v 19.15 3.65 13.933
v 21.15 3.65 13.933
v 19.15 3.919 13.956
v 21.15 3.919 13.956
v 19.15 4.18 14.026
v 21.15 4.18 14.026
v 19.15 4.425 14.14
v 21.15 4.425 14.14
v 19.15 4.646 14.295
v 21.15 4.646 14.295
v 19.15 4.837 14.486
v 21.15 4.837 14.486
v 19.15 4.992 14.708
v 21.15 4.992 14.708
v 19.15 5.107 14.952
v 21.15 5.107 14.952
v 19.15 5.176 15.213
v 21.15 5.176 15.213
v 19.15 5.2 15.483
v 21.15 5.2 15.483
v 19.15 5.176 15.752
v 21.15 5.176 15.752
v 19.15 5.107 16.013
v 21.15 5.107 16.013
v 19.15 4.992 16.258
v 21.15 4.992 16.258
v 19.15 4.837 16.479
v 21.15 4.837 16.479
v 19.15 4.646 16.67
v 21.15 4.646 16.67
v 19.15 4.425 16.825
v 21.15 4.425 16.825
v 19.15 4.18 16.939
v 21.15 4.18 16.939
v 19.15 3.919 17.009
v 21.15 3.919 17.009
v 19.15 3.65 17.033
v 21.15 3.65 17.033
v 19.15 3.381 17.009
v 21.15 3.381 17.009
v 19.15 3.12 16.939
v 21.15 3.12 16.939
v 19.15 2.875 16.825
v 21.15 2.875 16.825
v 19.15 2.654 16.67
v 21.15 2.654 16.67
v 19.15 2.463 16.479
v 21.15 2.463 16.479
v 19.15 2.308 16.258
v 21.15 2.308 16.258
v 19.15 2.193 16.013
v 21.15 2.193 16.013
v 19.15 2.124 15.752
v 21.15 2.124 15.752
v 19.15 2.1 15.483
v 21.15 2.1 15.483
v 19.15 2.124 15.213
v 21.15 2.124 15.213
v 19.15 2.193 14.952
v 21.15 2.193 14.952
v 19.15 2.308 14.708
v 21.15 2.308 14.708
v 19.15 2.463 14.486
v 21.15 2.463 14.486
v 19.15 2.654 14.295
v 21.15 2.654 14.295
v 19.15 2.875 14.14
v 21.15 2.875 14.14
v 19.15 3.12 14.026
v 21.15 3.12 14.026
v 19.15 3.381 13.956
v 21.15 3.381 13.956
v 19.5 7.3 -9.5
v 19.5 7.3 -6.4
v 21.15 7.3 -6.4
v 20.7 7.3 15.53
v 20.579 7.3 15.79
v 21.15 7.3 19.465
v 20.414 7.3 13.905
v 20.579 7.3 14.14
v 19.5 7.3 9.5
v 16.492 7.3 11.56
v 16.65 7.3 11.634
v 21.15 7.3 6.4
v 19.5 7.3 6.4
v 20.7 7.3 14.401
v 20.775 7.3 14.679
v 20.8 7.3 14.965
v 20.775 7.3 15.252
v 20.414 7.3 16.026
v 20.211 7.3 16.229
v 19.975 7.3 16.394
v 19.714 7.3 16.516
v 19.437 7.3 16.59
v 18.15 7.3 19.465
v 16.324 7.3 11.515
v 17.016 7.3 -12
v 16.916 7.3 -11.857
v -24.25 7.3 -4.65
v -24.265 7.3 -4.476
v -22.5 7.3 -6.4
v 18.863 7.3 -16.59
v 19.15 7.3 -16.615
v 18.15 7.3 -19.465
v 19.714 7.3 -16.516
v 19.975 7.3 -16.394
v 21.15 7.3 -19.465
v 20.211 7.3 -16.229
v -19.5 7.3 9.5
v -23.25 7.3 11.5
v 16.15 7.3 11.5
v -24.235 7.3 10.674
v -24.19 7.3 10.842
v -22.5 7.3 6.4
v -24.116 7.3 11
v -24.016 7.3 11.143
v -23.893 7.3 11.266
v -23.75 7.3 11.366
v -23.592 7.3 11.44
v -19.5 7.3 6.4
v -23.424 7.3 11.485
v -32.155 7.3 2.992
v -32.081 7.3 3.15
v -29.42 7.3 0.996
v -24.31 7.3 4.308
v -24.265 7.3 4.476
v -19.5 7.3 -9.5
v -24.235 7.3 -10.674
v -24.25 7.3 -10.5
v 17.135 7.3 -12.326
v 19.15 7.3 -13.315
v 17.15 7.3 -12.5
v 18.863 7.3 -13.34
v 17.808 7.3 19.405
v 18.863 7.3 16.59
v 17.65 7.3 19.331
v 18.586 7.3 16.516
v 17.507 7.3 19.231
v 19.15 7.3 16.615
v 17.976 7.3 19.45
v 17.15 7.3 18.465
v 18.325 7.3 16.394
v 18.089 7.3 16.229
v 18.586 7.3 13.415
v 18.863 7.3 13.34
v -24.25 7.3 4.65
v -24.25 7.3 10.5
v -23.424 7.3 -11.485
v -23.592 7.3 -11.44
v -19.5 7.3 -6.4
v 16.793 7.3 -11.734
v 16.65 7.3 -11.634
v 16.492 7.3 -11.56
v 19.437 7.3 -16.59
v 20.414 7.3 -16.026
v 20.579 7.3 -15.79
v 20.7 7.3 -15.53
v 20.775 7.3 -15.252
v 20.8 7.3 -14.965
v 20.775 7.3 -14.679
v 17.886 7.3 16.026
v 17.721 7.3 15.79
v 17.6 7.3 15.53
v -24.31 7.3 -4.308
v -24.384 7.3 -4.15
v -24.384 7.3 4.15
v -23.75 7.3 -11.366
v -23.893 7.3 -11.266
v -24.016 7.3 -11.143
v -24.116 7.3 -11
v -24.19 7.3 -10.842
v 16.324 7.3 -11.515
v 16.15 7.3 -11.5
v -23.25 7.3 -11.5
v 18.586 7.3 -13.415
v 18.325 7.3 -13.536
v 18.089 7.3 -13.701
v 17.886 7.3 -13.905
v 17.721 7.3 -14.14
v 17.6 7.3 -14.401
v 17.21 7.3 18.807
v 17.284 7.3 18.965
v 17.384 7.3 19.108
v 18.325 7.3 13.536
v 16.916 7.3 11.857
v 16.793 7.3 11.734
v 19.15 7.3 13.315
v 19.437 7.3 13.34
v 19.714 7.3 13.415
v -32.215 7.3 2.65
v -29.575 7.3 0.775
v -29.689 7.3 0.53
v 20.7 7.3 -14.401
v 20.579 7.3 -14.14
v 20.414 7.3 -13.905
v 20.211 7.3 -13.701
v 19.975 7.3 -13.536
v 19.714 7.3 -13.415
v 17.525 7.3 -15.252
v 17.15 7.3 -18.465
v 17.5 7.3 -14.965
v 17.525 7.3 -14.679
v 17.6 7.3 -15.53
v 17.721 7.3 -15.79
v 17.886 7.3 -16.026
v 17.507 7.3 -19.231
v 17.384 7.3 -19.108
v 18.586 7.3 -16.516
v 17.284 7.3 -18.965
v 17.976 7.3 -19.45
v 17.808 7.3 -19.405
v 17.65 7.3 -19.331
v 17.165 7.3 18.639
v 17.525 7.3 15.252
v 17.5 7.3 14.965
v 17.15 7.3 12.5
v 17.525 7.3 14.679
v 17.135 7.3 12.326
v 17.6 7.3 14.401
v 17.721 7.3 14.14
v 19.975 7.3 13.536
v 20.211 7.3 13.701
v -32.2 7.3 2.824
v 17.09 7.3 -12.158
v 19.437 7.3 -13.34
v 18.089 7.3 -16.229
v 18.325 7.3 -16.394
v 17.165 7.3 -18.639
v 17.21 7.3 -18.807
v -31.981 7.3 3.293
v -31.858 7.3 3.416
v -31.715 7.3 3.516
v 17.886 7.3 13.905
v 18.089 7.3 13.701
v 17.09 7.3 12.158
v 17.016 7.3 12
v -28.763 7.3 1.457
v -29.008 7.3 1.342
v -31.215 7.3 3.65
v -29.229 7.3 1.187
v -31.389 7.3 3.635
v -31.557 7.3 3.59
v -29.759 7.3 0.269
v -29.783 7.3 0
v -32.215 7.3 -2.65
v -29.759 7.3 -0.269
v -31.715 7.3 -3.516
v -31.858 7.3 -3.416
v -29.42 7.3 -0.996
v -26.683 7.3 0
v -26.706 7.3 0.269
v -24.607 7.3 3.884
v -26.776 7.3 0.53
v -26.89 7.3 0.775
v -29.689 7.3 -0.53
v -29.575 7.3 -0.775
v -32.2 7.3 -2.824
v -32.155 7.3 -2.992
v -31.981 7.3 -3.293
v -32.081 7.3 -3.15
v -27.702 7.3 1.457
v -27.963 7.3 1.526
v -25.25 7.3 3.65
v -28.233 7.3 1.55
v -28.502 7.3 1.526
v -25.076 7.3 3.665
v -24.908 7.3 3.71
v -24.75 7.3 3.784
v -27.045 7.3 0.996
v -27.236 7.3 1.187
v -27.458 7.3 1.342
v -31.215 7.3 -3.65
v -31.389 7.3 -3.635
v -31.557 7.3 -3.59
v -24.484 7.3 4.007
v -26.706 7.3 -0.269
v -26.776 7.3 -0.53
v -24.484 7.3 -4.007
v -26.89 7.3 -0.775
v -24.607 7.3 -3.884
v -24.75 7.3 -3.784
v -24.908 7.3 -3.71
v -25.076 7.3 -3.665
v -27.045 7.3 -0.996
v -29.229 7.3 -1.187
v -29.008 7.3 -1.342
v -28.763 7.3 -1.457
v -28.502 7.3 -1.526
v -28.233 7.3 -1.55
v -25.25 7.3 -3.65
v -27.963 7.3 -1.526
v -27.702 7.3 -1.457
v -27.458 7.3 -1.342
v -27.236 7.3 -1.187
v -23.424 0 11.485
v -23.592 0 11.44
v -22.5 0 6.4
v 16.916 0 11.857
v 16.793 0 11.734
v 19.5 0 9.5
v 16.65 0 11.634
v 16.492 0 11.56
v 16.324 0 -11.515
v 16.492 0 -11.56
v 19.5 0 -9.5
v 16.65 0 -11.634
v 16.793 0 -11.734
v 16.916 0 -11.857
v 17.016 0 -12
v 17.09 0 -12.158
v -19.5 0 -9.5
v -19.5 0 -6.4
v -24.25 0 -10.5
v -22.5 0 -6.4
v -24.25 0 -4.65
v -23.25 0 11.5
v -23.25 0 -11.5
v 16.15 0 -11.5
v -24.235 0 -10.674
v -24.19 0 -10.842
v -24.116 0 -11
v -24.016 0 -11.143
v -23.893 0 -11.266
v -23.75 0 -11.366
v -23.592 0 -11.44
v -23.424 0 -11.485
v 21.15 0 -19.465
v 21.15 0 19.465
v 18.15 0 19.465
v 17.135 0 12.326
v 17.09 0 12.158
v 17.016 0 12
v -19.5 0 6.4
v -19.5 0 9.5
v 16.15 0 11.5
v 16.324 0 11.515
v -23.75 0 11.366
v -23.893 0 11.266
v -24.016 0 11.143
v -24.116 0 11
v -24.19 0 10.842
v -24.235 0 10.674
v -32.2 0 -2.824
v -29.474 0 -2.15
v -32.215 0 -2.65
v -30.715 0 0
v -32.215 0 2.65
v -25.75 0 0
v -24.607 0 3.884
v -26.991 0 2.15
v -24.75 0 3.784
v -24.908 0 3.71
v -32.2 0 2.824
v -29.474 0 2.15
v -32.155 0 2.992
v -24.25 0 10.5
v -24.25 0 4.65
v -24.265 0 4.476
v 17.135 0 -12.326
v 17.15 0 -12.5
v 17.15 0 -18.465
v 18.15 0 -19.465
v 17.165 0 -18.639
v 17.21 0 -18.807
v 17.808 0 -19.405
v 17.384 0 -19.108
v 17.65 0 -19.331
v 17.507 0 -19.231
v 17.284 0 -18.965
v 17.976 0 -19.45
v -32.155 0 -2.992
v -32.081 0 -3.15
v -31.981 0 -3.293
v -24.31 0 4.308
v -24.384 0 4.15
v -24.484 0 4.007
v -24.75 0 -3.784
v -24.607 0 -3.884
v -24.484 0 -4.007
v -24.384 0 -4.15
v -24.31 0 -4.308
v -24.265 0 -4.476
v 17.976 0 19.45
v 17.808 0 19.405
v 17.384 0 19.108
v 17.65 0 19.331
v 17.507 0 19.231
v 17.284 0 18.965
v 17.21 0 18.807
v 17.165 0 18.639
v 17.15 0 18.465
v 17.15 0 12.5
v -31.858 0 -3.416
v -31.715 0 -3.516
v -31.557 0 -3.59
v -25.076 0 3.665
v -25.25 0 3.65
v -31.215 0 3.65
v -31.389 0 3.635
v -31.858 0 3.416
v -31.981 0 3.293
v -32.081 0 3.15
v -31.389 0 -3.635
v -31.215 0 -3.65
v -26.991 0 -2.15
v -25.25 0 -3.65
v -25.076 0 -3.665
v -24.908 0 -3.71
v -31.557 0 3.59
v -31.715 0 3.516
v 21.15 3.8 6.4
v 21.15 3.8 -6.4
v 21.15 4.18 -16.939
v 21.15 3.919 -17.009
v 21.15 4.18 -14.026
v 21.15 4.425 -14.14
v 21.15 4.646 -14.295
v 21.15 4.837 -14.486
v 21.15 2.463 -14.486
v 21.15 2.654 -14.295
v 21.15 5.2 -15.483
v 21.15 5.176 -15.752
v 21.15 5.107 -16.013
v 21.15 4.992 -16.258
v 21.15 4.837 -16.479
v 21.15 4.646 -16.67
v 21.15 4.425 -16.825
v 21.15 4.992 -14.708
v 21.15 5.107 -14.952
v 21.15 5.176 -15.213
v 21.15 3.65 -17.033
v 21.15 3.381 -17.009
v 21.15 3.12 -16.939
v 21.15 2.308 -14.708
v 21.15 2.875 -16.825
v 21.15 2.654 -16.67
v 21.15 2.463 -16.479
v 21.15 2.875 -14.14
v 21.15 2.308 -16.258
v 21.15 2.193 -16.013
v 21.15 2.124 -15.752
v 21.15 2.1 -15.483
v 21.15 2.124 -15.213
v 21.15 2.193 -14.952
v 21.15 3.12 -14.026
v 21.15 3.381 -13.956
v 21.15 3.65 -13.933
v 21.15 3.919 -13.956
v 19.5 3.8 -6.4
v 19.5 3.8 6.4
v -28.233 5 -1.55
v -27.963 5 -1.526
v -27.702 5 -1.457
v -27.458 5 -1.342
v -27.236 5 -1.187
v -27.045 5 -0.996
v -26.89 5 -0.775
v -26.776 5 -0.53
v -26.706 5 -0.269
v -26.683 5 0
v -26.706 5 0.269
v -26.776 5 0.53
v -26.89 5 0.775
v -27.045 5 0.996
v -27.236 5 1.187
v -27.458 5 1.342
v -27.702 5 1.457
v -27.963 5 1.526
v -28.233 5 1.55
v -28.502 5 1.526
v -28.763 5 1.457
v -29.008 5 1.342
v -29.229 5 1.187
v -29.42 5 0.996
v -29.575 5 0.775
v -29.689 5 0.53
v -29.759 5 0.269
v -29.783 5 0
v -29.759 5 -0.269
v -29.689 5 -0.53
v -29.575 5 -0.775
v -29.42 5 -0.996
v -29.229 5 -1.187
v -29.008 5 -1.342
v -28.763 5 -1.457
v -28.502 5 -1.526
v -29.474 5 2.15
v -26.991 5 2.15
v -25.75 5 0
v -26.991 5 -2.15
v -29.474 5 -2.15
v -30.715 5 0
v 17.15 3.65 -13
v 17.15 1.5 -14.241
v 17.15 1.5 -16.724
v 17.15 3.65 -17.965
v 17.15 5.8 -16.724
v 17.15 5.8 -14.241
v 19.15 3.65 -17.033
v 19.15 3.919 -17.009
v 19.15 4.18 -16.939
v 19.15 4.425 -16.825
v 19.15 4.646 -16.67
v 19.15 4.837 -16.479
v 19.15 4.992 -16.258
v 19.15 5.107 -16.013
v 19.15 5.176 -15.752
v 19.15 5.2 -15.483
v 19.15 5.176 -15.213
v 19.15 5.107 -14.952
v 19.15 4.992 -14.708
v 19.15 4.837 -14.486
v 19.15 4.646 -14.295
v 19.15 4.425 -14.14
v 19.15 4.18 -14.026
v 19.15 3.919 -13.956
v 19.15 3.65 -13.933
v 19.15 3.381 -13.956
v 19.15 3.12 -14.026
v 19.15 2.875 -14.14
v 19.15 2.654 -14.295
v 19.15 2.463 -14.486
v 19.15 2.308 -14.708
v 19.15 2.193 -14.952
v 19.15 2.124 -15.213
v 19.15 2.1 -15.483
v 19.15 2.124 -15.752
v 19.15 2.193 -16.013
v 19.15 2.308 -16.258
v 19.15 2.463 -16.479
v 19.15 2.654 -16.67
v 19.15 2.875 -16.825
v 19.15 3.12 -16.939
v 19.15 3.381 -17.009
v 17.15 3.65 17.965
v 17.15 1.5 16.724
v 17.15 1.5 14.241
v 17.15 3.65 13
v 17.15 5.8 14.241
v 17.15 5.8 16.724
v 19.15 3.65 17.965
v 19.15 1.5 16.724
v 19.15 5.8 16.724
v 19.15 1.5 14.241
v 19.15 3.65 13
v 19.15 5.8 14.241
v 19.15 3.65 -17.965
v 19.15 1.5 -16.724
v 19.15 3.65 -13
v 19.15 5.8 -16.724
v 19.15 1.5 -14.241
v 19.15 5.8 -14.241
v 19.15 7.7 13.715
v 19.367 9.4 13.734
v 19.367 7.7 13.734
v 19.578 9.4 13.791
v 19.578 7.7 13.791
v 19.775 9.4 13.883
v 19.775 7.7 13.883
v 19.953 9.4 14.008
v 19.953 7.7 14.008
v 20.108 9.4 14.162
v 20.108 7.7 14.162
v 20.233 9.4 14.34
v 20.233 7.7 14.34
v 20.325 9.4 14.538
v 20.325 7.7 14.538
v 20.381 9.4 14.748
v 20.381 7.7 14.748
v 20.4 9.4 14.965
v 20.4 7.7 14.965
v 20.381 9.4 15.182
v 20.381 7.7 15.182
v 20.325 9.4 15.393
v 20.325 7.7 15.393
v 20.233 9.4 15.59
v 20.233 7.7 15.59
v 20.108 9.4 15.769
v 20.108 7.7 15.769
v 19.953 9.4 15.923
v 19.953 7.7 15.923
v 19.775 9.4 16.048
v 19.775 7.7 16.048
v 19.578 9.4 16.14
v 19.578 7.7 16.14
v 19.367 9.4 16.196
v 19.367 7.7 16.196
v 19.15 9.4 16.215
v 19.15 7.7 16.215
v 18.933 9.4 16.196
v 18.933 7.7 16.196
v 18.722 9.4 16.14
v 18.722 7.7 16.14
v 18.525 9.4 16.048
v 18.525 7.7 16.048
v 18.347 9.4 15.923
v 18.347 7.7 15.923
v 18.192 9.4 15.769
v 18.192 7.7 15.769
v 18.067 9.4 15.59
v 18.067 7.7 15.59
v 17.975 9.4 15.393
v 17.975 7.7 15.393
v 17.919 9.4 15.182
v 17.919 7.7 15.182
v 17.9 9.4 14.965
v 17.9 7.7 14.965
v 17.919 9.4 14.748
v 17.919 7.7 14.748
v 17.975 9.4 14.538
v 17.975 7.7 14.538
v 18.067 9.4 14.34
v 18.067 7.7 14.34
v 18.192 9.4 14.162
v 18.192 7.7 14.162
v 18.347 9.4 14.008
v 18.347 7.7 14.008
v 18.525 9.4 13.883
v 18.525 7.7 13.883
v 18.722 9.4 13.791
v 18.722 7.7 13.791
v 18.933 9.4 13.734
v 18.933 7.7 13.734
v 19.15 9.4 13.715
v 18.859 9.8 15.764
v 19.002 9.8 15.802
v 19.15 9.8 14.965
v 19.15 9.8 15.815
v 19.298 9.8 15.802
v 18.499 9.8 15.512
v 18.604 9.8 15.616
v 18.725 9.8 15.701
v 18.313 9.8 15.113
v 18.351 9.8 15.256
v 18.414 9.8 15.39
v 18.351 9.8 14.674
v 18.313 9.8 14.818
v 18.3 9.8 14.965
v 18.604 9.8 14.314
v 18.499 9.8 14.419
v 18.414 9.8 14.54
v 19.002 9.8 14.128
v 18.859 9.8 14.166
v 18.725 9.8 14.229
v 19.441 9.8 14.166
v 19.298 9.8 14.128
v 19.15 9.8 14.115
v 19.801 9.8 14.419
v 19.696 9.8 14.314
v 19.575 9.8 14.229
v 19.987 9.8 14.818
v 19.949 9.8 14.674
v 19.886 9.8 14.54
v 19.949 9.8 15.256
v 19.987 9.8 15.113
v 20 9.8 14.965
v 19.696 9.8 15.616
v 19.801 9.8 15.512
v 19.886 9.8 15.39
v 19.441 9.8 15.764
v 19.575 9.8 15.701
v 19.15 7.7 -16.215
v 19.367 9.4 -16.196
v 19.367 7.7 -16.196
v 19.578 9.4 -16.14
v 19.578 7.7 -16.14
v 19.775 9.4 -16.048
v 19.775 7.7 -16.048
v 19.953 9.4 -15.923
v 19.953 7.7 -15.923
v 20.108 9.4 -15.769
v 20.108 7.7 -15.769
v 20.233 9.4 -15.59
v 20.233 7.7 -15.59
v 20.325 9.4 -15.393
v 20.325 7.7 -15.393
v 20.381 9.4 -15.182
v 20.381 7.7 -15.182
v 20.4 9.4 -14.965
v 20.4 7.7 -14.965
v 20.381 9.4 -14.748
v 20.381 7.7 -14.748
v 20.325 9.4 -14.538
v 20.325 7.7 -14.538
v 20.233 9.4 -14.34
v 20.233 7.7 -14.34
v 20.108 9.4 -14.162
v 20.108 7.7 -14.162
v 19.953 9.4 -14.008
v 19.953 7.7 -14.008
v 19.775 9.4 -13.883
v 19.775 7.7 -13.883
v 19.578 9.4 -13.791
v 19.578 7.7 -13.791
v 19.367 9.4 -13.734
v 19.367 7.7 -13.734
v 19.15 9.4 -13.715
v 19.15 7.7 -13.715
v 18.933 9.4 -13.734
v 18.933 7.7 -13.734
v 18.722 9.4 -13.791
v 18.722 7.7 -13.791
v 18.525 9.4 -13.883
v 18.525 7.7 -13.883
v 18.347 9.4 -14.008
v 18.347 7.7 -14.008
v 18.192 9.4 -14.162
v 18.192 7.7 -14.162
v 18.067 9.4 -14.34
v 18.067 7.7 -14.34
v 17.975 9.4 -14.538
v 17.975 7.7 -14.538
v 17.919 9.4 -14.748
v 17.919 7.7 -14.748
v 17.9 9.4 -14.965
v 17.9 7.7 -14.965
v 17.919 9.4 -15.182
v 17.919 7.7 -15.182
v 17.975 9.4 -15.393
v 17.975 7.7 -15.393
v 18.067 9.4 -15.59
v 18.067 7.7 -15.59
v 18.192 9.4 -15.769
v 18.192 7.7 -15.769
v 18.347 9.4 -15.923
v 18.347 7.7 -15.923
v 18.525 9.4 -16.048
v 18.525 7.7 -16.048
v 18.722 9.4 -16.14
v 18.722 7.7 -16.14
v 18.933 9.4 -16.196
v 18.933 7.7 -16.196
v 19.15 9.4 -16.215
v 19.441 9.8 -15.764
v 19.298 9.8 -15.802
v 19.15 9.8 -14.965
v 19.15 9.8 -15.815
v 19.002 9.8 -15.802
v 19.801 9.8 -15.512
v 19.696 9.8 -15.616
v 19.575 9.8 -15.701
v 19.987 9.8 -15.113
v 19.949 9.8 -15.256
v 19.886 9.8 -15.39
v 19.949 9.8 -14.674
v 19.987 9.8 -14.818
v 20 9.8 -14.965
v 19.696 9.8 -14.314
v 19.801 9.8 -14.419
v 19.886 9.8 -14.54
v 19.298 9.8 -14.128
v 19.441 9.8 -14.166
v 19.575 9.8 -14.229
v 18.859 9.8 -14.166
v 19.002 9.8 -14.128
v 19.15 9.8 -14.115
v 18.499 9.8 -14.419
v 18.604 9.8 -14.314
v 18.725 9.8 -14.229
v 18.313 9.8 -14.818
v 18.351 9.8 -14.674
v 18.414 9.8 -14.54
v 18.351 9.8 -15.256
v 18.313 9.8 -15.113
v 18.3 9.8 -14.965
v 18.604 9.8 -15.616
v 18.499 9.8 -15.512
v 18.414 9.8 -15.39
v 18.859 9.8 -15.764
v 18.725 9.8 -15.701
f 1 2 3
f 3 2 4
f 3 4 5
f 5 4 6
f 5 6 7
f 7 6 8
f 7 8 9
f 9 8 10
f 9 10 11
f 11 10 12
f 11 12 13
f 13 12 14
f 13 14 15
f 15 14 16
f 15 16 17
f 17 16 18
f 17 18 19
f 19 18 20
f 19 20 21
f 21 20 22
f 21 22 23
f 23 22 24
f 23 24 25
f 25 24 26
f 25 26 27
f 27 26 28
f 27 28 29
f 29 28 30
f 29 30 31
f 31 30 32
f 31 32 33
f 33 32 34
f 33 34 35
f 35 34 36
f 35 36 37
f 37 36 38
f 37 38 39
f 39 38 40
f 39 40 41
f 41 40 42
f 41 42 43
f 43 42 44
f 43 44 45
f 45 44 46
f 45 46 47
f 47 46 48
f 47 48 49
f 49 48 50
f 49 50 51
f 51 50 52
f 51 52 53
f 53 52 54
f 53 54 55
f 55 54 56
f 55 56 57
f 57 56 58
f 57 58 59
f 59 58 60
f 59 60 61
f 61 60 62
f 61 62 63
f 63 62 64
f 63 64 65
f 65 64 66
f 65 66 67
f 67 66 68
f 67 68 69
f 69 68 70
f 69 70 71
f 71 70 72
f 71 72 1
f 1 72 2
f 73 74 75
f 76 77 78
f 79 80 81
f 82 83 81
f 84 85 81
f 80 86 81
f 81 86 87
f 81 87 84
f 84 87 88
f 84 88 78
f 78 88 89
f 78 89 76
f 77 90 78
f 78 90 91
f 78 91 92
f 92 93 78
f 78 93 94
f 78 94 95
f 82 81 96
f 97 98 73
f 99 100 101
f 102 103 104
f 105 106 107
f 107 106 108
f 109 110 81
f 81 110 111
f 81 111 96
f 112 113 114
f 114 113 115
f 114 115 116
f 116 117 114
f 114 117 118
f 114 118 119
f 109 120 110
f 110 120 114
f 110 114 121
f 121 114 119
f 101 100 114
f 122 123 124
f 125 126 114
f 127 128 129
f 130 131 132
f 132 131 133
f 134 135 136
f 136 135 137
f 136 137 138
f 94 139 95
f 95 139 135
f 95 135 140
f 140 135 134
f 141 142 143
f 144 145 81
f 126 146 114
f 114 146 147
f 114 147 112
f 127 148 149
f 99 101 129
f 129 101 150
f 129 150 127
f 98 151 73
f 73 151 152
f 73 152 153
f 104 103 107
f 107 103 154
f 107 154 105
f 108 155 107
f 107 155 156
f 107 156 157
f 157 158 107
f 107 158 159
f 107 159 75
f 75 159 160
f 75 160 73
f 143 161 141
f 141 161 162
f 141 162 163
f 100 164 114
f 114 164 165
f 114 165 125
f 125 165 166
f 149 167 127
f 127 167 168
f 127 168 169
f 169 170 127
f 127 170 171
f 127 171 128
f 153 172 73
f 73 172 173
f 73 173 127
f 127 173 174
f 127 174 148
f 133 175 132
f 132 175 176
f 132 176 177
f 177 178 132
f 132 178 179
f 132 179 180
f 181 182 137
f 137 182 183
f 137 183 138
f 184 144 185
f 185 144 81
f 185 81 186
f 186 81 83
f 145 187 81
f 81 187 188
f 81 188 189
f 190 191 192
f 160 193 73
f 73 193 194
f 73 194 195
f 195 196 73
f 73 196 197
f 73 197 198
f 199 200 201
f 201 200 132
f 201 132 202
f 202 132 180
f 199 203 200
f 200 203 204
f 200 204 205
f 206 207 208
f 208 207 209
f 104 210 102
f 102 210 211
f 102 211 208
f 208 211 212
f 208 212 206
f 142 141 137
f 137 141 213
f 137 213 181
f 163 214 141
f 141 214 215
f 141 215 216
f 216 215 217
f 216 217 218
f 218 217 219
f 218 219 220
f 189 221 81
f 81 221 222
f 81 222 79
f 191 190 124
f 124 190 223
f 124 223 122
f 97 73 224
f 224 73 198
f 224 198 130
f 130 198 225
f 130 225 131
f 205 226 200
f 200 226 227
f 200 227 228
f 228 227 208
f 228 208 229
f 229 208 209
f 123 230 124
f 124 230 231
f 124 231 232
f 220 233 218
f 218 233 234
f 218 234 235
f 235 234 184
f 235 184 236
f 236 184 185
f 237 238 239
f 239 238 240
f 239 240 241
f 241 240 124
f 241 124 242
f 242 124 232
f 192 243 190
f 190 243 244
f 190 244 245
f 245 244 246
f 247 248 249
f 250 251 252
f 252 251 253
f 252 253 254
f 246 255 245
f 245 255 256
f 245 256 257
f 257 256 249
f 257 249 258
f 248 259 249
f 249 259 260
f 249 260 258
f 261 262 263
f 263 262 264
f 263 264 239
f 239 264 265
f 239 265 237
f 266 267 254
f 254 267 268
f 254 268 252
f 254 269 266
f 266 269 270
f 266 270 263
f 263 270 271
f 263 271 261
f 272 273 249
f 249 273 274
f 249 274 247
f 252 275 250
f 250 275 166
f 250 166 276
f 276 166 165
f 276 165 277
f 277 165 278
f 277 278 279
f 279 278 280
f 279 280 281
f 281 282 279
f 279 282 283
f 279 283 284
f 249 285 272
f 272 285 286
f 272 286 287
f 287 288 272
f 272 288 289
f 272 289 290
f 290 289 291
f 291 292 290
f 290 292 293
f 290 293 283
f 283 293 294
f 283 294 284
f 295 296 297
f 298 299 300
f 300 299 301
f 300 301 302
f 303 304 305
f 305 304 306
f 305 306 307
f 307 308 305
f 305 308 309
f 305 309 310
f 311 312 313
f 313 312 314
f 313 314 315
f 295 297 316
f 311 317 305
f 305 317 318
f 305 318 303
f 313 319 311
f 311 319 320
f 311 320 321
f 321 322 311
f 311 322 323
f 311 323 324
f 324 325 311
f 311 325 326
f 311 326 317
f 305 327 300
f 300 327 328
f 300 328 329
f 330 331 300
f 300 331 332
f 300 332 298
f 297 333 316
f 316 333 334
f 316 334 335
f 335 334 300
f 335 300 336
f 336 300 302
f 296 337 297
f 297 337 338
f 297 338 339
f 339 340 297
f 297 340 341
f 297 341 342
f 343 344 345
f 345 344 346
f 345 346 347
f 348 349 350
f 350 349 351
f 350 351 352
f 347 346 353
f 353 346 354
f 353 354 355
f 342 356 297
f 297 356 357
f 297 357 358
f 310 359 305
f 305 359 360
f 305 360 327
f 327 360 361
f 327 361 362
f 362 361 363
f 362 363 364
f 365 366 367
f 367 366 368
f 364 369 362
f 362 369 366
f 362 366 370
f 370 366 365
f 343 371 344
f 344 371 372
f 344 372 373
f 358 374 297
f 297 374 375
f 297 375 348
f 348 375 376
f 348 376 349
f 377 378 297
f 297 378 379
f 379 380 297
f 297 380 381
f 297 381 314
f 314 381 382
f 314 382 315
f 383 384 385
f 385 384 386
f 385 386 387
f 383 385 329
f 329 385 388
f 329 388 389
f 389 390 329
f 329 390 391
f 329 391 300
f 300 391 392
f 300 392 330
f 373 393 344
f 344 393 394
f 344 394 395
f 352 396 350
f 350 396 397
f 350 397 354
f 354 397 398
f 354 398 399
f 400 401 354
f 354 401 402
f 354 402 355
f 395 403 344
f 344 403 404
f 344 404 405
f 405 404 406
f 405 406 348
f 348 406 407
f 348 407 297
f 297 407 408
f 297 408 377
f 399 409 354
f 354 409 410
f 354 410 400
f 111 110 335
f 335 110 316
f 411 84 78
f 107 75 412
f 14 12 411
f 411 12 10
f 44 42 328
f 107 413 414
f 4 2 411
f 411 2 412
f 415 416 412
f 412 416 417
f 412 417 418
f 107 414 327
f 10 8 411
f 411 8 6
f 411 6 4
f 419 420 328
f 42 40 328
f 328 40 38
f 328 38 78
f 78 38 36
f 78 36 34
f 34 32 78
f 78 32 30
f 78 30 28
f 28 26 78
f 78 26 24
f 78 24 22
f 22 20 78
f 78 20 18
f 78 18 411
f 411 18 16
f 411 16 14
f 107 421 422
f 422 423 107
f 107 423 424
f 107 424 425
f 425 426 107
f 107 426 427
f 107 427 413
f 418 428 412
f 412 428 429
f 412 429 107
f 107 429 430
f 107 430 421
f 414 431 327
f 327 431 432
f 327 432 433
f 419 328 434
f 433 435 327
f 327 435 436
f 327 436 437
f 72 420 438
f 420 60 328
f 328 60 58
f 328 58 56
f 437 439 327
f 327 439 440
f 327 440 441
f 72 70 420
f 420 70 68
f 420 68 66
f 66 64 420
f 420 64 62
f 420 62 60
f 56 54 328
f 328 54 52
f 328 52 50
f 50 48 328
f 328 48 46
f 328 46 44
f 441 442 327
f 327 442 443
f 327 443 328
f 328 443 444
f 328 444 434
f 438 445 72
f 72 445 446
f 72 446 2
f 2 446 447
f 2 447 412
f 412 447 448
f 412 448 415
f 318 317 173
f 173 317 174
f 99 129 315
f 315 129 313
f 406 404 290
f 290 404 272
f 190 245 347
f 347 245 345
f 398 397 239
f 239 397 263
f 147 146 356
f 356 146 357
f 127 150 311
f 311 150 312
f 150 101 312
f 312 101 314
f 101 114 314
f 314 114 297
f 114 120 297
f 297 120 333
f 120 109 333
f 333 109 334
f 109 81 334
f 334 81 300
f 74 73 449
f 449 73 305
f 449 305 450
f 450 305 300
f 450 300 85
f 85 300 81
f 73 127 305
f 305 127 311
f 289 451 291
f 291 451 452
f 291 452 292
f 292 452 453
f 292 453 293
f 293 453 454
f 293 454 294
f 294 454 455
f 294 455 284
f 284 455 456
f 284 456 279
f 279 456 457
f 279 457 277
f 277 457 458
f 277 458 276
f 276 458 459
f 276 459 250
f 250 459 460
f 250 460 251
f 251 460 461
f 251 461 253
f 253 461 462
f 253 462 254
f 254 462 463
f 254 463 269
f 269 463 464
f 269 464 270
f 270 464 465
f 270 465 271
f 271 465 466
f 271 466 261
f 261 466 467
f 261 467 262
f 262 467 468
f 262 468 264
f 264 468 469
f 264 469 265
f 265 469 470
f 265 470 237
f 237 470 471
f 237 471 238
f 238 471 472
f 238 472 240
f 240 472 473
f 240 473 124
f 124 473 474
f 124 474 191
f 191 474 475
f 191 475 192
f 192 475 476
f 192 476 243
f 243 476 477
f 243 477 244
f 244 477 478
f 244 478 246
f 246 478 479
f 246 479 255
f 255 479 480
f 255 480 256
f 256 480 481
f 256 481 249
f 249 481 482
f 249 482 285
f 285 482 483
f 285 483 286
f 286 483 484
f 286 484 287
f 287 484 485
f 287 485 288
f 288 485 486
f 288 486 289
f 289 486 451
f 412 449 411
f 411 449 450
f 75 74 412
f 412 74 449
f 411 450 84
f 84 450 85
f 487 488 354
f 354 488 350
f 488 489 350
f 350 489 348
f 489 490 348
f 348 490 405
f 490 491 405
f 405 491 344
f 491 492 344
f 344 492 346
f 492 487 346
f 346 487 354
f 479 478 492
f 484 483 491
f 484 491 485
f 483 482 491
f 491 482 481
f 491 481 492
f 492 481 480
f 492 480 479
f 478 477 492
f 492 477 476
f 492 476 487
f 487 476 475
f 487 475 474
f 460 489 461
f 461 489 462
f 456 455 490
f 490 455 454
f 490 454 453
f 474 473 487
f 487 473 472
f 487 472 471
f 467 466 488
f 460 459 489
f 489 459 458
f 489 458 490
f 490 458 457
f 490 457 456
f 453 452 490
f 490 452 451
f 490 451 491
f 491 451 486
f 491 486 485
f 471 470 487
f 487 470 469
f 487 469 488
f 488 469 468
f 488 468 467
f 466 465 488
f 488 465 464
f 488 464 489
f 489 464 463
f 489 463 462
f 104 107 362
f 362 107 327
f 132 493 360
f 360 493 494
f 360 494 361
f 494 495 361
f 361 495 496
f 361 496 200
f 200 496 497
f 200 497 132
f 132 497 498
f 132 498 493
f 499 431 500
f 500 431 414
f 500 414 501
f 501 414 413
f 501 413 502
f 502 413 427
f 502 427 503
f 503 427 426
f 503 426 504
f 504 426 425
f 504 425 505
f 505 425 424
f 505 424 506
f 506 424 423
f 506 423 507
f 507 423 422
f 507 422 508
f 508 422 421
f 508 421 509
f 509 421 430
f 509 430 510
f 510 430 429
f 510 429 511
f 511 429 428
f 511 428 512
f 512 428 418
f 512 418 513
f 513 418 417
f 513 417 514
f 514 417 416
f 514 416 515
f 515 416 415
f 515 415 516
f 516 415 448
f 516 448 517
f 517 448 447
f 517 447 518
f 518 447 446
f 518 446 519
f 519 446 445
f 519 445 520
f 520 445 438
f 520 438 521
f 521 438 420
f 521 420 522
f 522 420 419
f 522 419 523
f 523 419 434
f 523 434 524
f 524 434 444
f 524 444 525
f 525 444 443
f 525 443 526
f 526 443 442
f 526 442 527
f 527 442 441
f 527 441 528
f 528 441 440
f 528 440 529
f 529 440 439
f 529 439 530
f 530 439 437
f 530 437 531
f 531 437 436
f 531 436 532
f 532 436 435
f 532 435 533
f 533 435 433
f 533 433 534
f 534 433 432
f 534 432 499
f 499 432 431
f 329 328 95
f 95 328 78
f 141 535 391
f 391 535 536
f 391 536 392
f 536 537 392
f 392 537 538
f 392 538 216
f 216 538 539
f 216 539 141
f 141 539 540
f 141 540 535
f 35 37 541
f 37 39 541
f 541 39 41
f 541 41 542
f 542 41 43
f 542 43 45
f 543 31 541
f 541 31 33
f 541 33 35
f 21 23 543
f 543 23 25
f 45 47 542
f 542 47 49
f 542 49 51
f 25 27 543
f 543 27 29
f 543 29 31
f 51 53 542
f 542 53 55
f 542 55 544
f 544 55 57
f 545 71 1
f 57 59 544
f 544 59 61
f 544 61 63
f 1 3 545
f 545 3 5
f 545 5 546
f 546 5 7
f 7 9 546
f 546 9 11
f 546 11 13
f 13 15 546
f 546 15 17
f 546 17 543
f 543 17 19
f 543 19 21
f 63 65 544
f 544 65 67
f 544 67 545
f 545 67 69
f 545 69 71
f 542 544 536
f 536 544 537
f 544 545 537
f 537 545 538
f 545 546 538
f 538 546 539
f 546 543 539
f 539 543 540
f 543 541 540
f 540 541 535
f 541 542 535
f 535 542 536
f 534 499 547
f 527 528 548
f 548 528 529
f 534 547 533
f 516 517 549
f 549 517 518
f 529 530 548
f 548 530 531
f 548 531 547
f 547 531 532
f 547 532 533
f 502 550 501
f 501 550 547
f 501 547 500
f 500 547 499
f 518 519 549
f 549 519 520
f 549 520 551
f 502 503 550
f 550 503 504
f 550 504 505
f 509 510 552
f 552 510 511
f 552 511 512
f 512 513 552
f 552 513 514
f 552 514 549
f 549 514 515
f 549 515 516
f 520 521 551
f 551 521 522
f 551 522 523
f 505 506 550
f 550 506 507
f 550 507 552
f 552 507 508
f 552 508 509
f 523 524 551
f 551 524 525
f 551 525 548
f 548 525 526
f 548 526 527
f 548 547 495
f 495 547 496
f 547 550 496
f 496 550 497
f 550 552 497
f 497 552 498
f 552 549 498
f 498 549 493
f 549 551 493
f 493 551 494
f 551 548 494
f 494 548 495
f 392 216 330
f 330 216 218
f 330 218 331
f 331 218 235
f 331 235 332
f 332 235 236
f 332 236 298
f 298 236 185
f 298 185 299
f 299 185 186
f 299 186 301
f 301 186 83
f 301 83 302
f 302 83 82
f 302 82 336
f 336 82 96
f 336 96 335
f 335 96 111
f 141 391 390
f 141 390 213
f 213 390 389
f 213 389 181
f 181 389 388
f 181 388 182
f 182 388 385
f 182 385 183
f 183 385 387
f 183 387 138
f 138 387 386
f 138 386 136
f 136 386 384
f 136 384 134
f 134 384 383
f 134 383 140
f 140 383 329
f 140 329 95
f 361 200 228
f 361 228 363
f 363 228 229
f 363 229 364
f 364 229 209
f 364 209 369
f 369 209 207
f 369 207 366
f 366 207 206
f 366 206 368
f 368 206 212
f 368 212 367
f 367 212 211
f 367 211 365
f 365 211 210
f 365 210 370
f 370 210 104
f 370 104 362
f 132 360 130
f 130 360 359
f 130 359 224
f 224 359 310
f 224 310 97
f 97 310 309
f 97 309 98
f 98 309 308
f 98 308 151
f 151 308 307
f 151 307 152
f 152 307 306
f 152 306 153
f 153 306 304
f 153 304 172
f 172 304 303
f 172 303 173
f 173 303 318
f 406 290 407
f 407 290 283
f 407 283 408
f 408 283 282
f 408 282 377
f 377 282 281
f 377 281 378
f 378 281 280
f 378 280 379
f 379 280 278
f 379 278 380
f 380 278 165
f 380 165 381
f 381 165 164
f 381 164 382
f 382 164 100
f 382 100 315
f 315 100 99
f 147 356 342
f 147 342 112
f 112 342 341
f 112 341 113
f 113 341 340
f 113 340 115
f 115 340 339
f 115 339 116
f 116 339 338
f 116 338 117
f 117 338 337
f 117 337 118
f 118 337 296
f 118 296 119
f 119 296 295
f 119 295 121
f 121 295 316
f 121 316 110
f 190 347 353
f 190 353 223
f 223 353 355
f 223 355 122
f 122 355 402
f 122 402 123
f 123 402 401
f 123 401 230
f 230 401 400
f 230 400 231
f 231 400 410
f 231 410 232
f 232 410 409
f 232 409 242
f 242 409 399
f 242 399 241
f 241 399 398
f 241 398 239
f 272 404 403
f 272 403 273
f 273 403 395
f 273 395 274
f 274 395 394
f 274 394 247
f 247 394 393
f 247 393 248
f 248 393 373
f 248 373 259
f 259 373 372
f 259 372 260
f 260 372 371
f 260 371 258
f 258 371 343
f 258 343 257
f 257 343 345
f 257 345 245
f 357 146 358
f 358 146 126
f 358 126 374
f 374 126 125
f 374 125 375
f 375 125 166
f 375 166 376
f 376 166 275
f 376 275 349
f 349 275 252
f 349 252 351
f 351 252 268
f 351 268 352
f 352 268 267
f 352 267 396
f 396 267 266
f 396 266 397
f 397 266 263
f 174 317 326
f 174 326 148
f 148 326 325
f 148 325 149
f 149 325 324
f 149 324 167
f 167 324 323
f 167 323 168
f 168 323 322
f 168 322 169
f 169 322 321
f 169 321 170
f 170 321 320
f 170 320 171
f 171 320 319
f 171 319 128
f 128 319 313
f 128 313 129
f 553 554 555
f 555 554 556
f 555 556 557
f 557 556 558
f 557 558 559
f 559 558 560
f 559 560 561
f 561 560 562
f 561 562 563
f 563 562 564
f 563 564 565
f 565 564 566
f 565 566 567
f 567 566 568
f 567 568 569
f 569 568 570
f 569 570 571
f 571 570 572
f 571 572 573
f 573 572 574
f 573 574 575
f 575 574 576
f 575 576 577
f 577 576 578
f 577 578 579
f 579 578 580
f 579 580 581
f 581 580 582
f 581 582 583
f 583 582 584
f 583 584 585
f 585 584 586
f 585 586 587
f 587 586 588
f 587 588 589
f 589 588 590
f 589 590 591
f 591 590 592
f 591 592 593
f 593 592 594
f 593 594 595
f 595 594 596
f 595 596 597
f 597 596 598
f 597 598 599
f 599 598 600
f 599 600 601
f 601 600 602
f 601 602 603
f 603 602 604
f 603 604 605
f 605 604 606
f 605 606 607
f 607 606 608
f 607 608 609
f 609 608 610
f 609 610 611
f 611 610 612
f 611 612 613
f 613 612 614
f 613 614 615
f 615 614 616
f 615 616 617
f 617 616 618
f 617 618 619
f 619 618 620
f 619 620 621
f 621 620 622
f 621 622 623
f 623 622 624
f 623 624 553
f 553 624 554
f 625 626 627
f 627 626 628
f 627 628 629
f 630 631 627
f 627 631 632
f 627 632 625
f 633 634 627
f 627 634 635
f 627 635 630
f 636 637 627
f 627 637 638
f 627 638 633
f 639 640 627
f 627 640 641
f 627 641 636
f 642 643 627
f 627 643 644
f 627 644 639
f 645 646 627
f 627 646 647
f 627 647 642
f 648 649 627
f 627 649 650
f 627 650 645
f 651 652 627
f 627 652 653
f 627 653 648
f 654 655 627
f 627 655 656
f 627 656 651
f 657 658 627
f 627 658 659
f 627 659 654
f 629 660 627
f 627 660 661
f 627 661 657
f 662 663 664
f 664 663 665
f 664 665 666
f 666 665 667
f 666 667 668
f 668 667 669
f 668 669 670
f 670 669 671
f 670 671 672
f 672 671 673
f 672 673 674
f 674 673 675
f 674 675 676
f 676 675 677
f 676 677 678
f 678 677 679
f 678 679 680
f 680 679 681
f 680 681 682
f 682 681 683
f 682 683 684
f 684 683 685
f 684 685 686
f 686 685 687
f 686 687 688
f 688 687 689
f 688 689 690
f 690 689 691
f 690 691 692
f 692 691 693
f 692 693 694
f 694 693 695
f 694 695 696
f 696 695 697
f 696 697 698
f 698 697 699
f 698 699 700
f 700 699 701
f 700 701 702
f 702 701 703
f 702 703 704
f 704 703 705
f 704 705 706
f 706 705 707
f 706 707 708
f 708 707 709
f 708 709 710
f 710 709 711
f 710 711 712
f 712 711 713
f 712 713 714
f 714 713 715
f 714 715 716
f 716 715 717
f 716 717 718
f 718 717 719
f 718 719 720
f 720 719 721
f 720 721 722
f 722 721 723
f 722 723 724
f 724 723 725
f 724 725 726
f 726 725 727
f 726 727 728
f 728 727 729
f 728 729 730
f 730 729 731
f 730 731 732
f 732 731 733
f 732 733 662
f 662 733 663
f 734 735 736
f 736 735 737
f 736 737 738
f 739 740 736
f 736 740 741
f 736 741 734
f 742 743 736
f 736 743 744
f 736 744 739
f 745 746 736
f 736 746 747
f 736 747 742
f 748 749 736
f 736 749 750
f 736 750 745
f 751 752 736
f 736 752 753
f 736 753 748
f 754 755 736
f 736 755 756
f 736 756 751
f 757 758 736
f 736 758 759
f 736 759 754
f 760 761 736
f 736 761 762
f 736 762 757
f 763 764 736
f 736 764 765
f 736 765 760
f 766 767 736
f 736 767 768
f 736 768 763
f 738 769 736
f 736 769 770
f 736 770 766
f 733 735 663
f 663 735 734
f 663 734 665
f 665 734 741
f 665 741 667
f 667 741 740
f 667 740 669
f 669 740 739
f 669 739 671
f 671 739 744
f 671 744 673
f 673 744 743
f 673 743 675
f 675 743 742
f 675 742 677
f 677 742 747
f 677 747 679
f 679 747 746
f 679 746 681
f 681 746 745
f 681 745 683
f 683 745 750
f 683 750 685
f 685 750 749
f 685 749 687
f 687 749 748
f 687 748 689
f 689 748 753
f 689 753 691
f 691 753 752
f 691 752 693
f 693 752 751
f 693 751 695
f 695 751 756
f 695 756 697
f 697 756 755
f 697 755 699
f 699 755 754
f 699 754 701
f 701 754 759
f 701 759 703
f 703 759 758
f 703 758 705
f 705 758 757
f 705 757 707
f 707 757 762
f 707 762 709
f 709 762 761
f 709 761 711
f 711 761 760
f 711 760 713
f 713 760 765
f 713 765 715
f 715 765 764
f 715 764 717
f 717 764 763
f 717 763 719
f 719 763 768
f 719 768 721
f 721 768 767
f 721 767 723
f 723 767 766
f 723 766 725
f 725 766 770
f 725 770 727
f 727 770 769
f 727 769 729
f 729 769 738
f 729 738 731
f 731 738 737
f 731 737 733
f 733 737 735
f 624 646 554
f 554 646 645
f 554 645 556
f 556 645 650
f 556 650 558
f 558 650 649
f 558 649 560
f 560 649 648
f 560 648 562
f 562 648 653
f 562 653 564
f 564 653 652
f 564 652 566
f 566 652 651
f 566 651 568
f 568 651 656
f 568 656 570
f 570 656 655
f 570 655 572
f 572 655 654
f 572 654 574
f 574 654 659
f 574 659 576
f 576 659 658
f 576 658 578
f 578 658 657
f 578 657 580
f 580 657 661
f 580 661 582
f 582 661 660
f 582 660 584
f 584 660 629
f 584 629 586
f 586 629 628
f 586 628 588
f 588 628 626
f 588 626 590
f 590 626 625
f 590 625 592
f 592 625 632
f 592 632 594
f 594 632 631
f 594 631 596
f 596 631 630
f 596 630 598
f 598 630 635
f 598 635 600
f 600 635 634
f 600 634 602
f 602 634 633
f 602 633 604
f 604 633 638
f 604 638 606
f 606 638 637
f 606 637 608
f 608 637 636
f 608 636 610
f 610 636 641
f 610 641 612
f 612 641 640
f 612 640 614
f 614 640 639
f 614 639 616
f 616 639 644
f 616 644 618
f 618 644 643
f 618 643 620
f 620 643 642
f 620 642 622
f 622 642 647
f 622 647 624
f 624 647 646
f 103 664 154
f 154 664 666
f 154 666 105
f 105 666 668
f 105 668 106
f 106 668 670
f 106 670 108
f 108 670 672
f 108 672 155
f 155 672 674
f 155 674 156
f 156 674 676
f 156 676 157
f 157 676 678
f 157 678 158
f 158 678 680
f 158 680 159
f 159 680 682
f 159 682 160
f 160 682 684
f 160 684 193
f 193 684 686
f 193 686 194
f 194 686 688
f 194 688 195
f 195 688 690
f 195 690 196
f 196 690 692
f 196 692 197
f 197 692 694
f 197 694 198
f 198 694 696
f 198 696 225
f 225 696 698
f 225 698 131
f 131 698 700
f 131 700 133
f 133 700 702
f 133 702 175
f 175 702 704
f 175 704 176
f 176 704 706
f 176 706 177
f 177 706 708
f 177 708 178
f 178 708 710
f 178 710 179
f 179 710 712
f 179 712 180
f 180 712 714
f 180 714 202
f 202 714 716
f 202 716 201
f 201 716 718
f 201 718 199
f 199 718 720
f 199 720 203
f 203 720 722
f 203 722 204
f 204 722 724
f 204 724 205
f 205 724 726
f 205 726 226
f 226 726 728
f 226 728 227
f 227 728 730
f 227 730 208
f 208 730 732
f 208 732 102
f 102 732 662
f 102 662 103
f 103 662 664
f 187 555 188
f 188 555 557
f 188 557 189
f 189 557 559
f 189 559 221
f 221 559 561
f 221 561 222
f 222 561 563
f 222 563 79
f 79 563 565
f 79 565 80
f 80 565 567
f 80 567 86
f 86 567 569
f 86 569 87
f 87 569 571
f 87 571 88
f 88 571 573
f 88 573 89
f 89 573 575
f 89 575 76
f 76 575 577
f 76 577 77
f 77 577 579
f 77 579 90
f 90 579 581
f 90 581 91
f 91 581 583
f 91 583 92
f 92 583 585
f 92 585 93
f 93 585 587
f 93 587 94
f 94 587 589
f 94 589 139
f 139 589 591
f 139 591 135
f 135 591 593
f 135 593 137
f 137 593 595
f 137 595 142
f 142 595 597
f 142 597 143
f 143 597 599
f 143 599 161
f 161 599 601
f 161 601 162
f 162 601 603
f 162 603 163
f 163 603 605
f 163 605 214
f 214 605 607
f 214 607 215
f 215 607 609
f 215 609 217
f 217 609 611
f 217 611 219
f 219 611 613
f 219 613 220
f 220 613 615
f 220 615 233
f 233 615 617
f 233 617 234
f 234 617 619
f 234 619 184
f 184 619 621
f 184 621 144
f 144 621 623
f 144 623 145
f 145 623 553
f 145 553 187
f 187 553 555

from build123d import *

# Parameters (mm, degrees)
CROQUIS1_R              = 1.55
SALIENTE_EXTRUIR1_DEPTH = 7.3
CROQUIS5_W              = 12.8
CROQUIS5_H              = 3.5
CORTAR_EXTRUIR4_DEPTH   = 1.65
CORTAR_EXTRUIR5_DEPTH   = 5
CROQUIS6_W              = 7.965212315
CROQUIS6_H              = 7.3
CROQUIS6_R              = 1.55
SALIENTE_EXTRUIR2_DEPTH = 4
CORTAR_EXTRUIR6_DEPTH   = 2
REDONDEO1_R             = 1
CROQUIS8_R              = 1.25
SALIENTE_EXTRUIR3_DEPTH = 2.5
CHAFL_N1_SIZE           = 0.4


with BuildPart() as part:
    # Croquis1 → Saliente-Extruir1 (new body)
    with BuildSketch(Plane(origin=(0, 0, 0), x_dir=(1, 0, 0), z_dir=(0, 1, 0))):
        Polygon((-24.25, 11.5), (-24.25, 3.65), (-32.215212315, 3.65), (-32.215212315, -3.65), (-24.25, -3.65), (-24.25, -11.5), (21.15, -11.5), (21.15, 11.5), align=None)
        with Locations((-28.232606158, 0)):
            Circle(CROQUIS1_R, mode=Mode.SUBTRACT)
        Polygon((-19.5, 9.5), (19.5, 9.5), (19.5, 6.4), (19.5, -6.4), (19.5, -9.5), (-19.5, -9.5), (-19.5, -6.4), (-22.5, -6.4), (-22.5, 6.4), (-19.5, 6.4), align=None, mode=Mode.SUBTRACT)
    extrude(amount=SALIENTE_EXTRUIR1_DEPTH)

    # Croquis5 → Cortar-Extruir4 (cut)
    with BuildSketch(Plane(origin=(21.15, 0, 0), x_dir=(0, 0, -1), z_dir=(1, 0, 0))):
        with Locations((0, 5.55)):
            Rectangle(CROQUIS5_W, CROQUIS5_H)
    extrude(amount=-CORTAR_EXTRUIR4_DEPTH, mode=Mode.SUBTRACT)

    # Croquis4 → Cortar-Extruir5 (cut)
    with BuildSketch(Plane.XZ):
        Polygon((-26.991303079, 2.15), (-25.75, 0), (-26.991303079, -2.15), (-29.473909236, -2.15), (-30.715212315, 0), (-29.473909236, 2.15), align=None)
    extrude(amount=-CORTAR_EXTRUIR5_DEPTH, mode=Mode.SUBTRACT)

    # Croquis6 → Saliente-Extruir2 (add)
    with BuildSketch(Plane(origin=(21.15, 0, 0), x_dir=(0, 0, -1), z_dir=(1, 0, 0))):
        with Locations((15.482606158, 3.65)):
            Rectangle(CROQUIS6_W, CROQUIS6_H)
        with Locations((15.482606158, 3.65)):
            Circle(CROQUIS6_R, mode=Mode.SUBTRACT)
        with Locations((-15.482606158, 3.65)):
            Rectangle(CROQUIS6_W, CROQUIS6_H)
        with Locations((-15.482606158, 3.65)):
            Circle(CROQUIS6_R, mode=Mode.SUBTRACT)
    extrude(amount=-SALIENTE_EXTRUIR2_DEPTH)

    # Croquis7 → Cortar-Extruir6 (cut)
    with BuildSketch(Plane.ZY.offset(-17.15)):
        Polygon((-17.965212315, 3.65), (-16.723909236, 5.8), (-14.241303079, 5.8), (-13, 3.65), (-14.241303079, 1.5), (-16.723909236, 1.5), align=None)
        Polygon((16.723909236, 1.5), (17.965212315, 3.65), (16.723909236, 5.8), (14.241303079, 5.8), (13, 3.65), (14.241303079, 1.5), align=None)
    extrude(amount=-CORTAR_EXTRUIR6_DEPTH, mode=Mode.SUBTRACT)

    # Redondeo1
    redondeo1_edges = [part.edges().sort_by_distance(p)[0] for p in [
        (17.15, 3.65, 11.5),
        (17.15, 3.65, 19.465212315),
        (-24.25, 3.65, 11.5),
        (-24.25, 3.65, 3.65),
        (-32.215212315, 3.65, 3.65),
        (-32.215212315, 3.65, -3.65),
        (-24.25, 3.65, -3.65),
        (-24.25, 3.65, -11.5),
        (17.15, 3.65, -19.465212315),
        (17.15, 3.65, -11.5),
    ]]
    fillet(redondeo1_edges, radius=REDONDEO1_R)

    # Croquis8 → Saliente-Extruir3 (add)
    with BuildSketch(Plane(origin=(0, 7.3, 0), x_dir=(1, 0, 0), z_dir=(0, 1, 0))):
        with Locations((19.15, -14.965212315)):
            Circle(CROQUIS8_R)
        with Locations((19.15, 14.965212315)):
            Circle(CROQUIS8_R)
    extrude(amount=SALIENTE_EXTRUIR3_DEPTH)

    # Chaflán1
    chafl_n1_edges = [part.edges().sort_by_distance(p)[0] for p in [
        (17.9, 7.3, 14.965212315),
        (17.9, 9.8, 14.965212315),
        (17.9, 7.3, -14.965212315),
        (17.9, 9.8, -14.965212315),
    ]]
    chamfer(chafl_n1_edges, length=CHAFL_N1_SIZE)


solid = part.part
